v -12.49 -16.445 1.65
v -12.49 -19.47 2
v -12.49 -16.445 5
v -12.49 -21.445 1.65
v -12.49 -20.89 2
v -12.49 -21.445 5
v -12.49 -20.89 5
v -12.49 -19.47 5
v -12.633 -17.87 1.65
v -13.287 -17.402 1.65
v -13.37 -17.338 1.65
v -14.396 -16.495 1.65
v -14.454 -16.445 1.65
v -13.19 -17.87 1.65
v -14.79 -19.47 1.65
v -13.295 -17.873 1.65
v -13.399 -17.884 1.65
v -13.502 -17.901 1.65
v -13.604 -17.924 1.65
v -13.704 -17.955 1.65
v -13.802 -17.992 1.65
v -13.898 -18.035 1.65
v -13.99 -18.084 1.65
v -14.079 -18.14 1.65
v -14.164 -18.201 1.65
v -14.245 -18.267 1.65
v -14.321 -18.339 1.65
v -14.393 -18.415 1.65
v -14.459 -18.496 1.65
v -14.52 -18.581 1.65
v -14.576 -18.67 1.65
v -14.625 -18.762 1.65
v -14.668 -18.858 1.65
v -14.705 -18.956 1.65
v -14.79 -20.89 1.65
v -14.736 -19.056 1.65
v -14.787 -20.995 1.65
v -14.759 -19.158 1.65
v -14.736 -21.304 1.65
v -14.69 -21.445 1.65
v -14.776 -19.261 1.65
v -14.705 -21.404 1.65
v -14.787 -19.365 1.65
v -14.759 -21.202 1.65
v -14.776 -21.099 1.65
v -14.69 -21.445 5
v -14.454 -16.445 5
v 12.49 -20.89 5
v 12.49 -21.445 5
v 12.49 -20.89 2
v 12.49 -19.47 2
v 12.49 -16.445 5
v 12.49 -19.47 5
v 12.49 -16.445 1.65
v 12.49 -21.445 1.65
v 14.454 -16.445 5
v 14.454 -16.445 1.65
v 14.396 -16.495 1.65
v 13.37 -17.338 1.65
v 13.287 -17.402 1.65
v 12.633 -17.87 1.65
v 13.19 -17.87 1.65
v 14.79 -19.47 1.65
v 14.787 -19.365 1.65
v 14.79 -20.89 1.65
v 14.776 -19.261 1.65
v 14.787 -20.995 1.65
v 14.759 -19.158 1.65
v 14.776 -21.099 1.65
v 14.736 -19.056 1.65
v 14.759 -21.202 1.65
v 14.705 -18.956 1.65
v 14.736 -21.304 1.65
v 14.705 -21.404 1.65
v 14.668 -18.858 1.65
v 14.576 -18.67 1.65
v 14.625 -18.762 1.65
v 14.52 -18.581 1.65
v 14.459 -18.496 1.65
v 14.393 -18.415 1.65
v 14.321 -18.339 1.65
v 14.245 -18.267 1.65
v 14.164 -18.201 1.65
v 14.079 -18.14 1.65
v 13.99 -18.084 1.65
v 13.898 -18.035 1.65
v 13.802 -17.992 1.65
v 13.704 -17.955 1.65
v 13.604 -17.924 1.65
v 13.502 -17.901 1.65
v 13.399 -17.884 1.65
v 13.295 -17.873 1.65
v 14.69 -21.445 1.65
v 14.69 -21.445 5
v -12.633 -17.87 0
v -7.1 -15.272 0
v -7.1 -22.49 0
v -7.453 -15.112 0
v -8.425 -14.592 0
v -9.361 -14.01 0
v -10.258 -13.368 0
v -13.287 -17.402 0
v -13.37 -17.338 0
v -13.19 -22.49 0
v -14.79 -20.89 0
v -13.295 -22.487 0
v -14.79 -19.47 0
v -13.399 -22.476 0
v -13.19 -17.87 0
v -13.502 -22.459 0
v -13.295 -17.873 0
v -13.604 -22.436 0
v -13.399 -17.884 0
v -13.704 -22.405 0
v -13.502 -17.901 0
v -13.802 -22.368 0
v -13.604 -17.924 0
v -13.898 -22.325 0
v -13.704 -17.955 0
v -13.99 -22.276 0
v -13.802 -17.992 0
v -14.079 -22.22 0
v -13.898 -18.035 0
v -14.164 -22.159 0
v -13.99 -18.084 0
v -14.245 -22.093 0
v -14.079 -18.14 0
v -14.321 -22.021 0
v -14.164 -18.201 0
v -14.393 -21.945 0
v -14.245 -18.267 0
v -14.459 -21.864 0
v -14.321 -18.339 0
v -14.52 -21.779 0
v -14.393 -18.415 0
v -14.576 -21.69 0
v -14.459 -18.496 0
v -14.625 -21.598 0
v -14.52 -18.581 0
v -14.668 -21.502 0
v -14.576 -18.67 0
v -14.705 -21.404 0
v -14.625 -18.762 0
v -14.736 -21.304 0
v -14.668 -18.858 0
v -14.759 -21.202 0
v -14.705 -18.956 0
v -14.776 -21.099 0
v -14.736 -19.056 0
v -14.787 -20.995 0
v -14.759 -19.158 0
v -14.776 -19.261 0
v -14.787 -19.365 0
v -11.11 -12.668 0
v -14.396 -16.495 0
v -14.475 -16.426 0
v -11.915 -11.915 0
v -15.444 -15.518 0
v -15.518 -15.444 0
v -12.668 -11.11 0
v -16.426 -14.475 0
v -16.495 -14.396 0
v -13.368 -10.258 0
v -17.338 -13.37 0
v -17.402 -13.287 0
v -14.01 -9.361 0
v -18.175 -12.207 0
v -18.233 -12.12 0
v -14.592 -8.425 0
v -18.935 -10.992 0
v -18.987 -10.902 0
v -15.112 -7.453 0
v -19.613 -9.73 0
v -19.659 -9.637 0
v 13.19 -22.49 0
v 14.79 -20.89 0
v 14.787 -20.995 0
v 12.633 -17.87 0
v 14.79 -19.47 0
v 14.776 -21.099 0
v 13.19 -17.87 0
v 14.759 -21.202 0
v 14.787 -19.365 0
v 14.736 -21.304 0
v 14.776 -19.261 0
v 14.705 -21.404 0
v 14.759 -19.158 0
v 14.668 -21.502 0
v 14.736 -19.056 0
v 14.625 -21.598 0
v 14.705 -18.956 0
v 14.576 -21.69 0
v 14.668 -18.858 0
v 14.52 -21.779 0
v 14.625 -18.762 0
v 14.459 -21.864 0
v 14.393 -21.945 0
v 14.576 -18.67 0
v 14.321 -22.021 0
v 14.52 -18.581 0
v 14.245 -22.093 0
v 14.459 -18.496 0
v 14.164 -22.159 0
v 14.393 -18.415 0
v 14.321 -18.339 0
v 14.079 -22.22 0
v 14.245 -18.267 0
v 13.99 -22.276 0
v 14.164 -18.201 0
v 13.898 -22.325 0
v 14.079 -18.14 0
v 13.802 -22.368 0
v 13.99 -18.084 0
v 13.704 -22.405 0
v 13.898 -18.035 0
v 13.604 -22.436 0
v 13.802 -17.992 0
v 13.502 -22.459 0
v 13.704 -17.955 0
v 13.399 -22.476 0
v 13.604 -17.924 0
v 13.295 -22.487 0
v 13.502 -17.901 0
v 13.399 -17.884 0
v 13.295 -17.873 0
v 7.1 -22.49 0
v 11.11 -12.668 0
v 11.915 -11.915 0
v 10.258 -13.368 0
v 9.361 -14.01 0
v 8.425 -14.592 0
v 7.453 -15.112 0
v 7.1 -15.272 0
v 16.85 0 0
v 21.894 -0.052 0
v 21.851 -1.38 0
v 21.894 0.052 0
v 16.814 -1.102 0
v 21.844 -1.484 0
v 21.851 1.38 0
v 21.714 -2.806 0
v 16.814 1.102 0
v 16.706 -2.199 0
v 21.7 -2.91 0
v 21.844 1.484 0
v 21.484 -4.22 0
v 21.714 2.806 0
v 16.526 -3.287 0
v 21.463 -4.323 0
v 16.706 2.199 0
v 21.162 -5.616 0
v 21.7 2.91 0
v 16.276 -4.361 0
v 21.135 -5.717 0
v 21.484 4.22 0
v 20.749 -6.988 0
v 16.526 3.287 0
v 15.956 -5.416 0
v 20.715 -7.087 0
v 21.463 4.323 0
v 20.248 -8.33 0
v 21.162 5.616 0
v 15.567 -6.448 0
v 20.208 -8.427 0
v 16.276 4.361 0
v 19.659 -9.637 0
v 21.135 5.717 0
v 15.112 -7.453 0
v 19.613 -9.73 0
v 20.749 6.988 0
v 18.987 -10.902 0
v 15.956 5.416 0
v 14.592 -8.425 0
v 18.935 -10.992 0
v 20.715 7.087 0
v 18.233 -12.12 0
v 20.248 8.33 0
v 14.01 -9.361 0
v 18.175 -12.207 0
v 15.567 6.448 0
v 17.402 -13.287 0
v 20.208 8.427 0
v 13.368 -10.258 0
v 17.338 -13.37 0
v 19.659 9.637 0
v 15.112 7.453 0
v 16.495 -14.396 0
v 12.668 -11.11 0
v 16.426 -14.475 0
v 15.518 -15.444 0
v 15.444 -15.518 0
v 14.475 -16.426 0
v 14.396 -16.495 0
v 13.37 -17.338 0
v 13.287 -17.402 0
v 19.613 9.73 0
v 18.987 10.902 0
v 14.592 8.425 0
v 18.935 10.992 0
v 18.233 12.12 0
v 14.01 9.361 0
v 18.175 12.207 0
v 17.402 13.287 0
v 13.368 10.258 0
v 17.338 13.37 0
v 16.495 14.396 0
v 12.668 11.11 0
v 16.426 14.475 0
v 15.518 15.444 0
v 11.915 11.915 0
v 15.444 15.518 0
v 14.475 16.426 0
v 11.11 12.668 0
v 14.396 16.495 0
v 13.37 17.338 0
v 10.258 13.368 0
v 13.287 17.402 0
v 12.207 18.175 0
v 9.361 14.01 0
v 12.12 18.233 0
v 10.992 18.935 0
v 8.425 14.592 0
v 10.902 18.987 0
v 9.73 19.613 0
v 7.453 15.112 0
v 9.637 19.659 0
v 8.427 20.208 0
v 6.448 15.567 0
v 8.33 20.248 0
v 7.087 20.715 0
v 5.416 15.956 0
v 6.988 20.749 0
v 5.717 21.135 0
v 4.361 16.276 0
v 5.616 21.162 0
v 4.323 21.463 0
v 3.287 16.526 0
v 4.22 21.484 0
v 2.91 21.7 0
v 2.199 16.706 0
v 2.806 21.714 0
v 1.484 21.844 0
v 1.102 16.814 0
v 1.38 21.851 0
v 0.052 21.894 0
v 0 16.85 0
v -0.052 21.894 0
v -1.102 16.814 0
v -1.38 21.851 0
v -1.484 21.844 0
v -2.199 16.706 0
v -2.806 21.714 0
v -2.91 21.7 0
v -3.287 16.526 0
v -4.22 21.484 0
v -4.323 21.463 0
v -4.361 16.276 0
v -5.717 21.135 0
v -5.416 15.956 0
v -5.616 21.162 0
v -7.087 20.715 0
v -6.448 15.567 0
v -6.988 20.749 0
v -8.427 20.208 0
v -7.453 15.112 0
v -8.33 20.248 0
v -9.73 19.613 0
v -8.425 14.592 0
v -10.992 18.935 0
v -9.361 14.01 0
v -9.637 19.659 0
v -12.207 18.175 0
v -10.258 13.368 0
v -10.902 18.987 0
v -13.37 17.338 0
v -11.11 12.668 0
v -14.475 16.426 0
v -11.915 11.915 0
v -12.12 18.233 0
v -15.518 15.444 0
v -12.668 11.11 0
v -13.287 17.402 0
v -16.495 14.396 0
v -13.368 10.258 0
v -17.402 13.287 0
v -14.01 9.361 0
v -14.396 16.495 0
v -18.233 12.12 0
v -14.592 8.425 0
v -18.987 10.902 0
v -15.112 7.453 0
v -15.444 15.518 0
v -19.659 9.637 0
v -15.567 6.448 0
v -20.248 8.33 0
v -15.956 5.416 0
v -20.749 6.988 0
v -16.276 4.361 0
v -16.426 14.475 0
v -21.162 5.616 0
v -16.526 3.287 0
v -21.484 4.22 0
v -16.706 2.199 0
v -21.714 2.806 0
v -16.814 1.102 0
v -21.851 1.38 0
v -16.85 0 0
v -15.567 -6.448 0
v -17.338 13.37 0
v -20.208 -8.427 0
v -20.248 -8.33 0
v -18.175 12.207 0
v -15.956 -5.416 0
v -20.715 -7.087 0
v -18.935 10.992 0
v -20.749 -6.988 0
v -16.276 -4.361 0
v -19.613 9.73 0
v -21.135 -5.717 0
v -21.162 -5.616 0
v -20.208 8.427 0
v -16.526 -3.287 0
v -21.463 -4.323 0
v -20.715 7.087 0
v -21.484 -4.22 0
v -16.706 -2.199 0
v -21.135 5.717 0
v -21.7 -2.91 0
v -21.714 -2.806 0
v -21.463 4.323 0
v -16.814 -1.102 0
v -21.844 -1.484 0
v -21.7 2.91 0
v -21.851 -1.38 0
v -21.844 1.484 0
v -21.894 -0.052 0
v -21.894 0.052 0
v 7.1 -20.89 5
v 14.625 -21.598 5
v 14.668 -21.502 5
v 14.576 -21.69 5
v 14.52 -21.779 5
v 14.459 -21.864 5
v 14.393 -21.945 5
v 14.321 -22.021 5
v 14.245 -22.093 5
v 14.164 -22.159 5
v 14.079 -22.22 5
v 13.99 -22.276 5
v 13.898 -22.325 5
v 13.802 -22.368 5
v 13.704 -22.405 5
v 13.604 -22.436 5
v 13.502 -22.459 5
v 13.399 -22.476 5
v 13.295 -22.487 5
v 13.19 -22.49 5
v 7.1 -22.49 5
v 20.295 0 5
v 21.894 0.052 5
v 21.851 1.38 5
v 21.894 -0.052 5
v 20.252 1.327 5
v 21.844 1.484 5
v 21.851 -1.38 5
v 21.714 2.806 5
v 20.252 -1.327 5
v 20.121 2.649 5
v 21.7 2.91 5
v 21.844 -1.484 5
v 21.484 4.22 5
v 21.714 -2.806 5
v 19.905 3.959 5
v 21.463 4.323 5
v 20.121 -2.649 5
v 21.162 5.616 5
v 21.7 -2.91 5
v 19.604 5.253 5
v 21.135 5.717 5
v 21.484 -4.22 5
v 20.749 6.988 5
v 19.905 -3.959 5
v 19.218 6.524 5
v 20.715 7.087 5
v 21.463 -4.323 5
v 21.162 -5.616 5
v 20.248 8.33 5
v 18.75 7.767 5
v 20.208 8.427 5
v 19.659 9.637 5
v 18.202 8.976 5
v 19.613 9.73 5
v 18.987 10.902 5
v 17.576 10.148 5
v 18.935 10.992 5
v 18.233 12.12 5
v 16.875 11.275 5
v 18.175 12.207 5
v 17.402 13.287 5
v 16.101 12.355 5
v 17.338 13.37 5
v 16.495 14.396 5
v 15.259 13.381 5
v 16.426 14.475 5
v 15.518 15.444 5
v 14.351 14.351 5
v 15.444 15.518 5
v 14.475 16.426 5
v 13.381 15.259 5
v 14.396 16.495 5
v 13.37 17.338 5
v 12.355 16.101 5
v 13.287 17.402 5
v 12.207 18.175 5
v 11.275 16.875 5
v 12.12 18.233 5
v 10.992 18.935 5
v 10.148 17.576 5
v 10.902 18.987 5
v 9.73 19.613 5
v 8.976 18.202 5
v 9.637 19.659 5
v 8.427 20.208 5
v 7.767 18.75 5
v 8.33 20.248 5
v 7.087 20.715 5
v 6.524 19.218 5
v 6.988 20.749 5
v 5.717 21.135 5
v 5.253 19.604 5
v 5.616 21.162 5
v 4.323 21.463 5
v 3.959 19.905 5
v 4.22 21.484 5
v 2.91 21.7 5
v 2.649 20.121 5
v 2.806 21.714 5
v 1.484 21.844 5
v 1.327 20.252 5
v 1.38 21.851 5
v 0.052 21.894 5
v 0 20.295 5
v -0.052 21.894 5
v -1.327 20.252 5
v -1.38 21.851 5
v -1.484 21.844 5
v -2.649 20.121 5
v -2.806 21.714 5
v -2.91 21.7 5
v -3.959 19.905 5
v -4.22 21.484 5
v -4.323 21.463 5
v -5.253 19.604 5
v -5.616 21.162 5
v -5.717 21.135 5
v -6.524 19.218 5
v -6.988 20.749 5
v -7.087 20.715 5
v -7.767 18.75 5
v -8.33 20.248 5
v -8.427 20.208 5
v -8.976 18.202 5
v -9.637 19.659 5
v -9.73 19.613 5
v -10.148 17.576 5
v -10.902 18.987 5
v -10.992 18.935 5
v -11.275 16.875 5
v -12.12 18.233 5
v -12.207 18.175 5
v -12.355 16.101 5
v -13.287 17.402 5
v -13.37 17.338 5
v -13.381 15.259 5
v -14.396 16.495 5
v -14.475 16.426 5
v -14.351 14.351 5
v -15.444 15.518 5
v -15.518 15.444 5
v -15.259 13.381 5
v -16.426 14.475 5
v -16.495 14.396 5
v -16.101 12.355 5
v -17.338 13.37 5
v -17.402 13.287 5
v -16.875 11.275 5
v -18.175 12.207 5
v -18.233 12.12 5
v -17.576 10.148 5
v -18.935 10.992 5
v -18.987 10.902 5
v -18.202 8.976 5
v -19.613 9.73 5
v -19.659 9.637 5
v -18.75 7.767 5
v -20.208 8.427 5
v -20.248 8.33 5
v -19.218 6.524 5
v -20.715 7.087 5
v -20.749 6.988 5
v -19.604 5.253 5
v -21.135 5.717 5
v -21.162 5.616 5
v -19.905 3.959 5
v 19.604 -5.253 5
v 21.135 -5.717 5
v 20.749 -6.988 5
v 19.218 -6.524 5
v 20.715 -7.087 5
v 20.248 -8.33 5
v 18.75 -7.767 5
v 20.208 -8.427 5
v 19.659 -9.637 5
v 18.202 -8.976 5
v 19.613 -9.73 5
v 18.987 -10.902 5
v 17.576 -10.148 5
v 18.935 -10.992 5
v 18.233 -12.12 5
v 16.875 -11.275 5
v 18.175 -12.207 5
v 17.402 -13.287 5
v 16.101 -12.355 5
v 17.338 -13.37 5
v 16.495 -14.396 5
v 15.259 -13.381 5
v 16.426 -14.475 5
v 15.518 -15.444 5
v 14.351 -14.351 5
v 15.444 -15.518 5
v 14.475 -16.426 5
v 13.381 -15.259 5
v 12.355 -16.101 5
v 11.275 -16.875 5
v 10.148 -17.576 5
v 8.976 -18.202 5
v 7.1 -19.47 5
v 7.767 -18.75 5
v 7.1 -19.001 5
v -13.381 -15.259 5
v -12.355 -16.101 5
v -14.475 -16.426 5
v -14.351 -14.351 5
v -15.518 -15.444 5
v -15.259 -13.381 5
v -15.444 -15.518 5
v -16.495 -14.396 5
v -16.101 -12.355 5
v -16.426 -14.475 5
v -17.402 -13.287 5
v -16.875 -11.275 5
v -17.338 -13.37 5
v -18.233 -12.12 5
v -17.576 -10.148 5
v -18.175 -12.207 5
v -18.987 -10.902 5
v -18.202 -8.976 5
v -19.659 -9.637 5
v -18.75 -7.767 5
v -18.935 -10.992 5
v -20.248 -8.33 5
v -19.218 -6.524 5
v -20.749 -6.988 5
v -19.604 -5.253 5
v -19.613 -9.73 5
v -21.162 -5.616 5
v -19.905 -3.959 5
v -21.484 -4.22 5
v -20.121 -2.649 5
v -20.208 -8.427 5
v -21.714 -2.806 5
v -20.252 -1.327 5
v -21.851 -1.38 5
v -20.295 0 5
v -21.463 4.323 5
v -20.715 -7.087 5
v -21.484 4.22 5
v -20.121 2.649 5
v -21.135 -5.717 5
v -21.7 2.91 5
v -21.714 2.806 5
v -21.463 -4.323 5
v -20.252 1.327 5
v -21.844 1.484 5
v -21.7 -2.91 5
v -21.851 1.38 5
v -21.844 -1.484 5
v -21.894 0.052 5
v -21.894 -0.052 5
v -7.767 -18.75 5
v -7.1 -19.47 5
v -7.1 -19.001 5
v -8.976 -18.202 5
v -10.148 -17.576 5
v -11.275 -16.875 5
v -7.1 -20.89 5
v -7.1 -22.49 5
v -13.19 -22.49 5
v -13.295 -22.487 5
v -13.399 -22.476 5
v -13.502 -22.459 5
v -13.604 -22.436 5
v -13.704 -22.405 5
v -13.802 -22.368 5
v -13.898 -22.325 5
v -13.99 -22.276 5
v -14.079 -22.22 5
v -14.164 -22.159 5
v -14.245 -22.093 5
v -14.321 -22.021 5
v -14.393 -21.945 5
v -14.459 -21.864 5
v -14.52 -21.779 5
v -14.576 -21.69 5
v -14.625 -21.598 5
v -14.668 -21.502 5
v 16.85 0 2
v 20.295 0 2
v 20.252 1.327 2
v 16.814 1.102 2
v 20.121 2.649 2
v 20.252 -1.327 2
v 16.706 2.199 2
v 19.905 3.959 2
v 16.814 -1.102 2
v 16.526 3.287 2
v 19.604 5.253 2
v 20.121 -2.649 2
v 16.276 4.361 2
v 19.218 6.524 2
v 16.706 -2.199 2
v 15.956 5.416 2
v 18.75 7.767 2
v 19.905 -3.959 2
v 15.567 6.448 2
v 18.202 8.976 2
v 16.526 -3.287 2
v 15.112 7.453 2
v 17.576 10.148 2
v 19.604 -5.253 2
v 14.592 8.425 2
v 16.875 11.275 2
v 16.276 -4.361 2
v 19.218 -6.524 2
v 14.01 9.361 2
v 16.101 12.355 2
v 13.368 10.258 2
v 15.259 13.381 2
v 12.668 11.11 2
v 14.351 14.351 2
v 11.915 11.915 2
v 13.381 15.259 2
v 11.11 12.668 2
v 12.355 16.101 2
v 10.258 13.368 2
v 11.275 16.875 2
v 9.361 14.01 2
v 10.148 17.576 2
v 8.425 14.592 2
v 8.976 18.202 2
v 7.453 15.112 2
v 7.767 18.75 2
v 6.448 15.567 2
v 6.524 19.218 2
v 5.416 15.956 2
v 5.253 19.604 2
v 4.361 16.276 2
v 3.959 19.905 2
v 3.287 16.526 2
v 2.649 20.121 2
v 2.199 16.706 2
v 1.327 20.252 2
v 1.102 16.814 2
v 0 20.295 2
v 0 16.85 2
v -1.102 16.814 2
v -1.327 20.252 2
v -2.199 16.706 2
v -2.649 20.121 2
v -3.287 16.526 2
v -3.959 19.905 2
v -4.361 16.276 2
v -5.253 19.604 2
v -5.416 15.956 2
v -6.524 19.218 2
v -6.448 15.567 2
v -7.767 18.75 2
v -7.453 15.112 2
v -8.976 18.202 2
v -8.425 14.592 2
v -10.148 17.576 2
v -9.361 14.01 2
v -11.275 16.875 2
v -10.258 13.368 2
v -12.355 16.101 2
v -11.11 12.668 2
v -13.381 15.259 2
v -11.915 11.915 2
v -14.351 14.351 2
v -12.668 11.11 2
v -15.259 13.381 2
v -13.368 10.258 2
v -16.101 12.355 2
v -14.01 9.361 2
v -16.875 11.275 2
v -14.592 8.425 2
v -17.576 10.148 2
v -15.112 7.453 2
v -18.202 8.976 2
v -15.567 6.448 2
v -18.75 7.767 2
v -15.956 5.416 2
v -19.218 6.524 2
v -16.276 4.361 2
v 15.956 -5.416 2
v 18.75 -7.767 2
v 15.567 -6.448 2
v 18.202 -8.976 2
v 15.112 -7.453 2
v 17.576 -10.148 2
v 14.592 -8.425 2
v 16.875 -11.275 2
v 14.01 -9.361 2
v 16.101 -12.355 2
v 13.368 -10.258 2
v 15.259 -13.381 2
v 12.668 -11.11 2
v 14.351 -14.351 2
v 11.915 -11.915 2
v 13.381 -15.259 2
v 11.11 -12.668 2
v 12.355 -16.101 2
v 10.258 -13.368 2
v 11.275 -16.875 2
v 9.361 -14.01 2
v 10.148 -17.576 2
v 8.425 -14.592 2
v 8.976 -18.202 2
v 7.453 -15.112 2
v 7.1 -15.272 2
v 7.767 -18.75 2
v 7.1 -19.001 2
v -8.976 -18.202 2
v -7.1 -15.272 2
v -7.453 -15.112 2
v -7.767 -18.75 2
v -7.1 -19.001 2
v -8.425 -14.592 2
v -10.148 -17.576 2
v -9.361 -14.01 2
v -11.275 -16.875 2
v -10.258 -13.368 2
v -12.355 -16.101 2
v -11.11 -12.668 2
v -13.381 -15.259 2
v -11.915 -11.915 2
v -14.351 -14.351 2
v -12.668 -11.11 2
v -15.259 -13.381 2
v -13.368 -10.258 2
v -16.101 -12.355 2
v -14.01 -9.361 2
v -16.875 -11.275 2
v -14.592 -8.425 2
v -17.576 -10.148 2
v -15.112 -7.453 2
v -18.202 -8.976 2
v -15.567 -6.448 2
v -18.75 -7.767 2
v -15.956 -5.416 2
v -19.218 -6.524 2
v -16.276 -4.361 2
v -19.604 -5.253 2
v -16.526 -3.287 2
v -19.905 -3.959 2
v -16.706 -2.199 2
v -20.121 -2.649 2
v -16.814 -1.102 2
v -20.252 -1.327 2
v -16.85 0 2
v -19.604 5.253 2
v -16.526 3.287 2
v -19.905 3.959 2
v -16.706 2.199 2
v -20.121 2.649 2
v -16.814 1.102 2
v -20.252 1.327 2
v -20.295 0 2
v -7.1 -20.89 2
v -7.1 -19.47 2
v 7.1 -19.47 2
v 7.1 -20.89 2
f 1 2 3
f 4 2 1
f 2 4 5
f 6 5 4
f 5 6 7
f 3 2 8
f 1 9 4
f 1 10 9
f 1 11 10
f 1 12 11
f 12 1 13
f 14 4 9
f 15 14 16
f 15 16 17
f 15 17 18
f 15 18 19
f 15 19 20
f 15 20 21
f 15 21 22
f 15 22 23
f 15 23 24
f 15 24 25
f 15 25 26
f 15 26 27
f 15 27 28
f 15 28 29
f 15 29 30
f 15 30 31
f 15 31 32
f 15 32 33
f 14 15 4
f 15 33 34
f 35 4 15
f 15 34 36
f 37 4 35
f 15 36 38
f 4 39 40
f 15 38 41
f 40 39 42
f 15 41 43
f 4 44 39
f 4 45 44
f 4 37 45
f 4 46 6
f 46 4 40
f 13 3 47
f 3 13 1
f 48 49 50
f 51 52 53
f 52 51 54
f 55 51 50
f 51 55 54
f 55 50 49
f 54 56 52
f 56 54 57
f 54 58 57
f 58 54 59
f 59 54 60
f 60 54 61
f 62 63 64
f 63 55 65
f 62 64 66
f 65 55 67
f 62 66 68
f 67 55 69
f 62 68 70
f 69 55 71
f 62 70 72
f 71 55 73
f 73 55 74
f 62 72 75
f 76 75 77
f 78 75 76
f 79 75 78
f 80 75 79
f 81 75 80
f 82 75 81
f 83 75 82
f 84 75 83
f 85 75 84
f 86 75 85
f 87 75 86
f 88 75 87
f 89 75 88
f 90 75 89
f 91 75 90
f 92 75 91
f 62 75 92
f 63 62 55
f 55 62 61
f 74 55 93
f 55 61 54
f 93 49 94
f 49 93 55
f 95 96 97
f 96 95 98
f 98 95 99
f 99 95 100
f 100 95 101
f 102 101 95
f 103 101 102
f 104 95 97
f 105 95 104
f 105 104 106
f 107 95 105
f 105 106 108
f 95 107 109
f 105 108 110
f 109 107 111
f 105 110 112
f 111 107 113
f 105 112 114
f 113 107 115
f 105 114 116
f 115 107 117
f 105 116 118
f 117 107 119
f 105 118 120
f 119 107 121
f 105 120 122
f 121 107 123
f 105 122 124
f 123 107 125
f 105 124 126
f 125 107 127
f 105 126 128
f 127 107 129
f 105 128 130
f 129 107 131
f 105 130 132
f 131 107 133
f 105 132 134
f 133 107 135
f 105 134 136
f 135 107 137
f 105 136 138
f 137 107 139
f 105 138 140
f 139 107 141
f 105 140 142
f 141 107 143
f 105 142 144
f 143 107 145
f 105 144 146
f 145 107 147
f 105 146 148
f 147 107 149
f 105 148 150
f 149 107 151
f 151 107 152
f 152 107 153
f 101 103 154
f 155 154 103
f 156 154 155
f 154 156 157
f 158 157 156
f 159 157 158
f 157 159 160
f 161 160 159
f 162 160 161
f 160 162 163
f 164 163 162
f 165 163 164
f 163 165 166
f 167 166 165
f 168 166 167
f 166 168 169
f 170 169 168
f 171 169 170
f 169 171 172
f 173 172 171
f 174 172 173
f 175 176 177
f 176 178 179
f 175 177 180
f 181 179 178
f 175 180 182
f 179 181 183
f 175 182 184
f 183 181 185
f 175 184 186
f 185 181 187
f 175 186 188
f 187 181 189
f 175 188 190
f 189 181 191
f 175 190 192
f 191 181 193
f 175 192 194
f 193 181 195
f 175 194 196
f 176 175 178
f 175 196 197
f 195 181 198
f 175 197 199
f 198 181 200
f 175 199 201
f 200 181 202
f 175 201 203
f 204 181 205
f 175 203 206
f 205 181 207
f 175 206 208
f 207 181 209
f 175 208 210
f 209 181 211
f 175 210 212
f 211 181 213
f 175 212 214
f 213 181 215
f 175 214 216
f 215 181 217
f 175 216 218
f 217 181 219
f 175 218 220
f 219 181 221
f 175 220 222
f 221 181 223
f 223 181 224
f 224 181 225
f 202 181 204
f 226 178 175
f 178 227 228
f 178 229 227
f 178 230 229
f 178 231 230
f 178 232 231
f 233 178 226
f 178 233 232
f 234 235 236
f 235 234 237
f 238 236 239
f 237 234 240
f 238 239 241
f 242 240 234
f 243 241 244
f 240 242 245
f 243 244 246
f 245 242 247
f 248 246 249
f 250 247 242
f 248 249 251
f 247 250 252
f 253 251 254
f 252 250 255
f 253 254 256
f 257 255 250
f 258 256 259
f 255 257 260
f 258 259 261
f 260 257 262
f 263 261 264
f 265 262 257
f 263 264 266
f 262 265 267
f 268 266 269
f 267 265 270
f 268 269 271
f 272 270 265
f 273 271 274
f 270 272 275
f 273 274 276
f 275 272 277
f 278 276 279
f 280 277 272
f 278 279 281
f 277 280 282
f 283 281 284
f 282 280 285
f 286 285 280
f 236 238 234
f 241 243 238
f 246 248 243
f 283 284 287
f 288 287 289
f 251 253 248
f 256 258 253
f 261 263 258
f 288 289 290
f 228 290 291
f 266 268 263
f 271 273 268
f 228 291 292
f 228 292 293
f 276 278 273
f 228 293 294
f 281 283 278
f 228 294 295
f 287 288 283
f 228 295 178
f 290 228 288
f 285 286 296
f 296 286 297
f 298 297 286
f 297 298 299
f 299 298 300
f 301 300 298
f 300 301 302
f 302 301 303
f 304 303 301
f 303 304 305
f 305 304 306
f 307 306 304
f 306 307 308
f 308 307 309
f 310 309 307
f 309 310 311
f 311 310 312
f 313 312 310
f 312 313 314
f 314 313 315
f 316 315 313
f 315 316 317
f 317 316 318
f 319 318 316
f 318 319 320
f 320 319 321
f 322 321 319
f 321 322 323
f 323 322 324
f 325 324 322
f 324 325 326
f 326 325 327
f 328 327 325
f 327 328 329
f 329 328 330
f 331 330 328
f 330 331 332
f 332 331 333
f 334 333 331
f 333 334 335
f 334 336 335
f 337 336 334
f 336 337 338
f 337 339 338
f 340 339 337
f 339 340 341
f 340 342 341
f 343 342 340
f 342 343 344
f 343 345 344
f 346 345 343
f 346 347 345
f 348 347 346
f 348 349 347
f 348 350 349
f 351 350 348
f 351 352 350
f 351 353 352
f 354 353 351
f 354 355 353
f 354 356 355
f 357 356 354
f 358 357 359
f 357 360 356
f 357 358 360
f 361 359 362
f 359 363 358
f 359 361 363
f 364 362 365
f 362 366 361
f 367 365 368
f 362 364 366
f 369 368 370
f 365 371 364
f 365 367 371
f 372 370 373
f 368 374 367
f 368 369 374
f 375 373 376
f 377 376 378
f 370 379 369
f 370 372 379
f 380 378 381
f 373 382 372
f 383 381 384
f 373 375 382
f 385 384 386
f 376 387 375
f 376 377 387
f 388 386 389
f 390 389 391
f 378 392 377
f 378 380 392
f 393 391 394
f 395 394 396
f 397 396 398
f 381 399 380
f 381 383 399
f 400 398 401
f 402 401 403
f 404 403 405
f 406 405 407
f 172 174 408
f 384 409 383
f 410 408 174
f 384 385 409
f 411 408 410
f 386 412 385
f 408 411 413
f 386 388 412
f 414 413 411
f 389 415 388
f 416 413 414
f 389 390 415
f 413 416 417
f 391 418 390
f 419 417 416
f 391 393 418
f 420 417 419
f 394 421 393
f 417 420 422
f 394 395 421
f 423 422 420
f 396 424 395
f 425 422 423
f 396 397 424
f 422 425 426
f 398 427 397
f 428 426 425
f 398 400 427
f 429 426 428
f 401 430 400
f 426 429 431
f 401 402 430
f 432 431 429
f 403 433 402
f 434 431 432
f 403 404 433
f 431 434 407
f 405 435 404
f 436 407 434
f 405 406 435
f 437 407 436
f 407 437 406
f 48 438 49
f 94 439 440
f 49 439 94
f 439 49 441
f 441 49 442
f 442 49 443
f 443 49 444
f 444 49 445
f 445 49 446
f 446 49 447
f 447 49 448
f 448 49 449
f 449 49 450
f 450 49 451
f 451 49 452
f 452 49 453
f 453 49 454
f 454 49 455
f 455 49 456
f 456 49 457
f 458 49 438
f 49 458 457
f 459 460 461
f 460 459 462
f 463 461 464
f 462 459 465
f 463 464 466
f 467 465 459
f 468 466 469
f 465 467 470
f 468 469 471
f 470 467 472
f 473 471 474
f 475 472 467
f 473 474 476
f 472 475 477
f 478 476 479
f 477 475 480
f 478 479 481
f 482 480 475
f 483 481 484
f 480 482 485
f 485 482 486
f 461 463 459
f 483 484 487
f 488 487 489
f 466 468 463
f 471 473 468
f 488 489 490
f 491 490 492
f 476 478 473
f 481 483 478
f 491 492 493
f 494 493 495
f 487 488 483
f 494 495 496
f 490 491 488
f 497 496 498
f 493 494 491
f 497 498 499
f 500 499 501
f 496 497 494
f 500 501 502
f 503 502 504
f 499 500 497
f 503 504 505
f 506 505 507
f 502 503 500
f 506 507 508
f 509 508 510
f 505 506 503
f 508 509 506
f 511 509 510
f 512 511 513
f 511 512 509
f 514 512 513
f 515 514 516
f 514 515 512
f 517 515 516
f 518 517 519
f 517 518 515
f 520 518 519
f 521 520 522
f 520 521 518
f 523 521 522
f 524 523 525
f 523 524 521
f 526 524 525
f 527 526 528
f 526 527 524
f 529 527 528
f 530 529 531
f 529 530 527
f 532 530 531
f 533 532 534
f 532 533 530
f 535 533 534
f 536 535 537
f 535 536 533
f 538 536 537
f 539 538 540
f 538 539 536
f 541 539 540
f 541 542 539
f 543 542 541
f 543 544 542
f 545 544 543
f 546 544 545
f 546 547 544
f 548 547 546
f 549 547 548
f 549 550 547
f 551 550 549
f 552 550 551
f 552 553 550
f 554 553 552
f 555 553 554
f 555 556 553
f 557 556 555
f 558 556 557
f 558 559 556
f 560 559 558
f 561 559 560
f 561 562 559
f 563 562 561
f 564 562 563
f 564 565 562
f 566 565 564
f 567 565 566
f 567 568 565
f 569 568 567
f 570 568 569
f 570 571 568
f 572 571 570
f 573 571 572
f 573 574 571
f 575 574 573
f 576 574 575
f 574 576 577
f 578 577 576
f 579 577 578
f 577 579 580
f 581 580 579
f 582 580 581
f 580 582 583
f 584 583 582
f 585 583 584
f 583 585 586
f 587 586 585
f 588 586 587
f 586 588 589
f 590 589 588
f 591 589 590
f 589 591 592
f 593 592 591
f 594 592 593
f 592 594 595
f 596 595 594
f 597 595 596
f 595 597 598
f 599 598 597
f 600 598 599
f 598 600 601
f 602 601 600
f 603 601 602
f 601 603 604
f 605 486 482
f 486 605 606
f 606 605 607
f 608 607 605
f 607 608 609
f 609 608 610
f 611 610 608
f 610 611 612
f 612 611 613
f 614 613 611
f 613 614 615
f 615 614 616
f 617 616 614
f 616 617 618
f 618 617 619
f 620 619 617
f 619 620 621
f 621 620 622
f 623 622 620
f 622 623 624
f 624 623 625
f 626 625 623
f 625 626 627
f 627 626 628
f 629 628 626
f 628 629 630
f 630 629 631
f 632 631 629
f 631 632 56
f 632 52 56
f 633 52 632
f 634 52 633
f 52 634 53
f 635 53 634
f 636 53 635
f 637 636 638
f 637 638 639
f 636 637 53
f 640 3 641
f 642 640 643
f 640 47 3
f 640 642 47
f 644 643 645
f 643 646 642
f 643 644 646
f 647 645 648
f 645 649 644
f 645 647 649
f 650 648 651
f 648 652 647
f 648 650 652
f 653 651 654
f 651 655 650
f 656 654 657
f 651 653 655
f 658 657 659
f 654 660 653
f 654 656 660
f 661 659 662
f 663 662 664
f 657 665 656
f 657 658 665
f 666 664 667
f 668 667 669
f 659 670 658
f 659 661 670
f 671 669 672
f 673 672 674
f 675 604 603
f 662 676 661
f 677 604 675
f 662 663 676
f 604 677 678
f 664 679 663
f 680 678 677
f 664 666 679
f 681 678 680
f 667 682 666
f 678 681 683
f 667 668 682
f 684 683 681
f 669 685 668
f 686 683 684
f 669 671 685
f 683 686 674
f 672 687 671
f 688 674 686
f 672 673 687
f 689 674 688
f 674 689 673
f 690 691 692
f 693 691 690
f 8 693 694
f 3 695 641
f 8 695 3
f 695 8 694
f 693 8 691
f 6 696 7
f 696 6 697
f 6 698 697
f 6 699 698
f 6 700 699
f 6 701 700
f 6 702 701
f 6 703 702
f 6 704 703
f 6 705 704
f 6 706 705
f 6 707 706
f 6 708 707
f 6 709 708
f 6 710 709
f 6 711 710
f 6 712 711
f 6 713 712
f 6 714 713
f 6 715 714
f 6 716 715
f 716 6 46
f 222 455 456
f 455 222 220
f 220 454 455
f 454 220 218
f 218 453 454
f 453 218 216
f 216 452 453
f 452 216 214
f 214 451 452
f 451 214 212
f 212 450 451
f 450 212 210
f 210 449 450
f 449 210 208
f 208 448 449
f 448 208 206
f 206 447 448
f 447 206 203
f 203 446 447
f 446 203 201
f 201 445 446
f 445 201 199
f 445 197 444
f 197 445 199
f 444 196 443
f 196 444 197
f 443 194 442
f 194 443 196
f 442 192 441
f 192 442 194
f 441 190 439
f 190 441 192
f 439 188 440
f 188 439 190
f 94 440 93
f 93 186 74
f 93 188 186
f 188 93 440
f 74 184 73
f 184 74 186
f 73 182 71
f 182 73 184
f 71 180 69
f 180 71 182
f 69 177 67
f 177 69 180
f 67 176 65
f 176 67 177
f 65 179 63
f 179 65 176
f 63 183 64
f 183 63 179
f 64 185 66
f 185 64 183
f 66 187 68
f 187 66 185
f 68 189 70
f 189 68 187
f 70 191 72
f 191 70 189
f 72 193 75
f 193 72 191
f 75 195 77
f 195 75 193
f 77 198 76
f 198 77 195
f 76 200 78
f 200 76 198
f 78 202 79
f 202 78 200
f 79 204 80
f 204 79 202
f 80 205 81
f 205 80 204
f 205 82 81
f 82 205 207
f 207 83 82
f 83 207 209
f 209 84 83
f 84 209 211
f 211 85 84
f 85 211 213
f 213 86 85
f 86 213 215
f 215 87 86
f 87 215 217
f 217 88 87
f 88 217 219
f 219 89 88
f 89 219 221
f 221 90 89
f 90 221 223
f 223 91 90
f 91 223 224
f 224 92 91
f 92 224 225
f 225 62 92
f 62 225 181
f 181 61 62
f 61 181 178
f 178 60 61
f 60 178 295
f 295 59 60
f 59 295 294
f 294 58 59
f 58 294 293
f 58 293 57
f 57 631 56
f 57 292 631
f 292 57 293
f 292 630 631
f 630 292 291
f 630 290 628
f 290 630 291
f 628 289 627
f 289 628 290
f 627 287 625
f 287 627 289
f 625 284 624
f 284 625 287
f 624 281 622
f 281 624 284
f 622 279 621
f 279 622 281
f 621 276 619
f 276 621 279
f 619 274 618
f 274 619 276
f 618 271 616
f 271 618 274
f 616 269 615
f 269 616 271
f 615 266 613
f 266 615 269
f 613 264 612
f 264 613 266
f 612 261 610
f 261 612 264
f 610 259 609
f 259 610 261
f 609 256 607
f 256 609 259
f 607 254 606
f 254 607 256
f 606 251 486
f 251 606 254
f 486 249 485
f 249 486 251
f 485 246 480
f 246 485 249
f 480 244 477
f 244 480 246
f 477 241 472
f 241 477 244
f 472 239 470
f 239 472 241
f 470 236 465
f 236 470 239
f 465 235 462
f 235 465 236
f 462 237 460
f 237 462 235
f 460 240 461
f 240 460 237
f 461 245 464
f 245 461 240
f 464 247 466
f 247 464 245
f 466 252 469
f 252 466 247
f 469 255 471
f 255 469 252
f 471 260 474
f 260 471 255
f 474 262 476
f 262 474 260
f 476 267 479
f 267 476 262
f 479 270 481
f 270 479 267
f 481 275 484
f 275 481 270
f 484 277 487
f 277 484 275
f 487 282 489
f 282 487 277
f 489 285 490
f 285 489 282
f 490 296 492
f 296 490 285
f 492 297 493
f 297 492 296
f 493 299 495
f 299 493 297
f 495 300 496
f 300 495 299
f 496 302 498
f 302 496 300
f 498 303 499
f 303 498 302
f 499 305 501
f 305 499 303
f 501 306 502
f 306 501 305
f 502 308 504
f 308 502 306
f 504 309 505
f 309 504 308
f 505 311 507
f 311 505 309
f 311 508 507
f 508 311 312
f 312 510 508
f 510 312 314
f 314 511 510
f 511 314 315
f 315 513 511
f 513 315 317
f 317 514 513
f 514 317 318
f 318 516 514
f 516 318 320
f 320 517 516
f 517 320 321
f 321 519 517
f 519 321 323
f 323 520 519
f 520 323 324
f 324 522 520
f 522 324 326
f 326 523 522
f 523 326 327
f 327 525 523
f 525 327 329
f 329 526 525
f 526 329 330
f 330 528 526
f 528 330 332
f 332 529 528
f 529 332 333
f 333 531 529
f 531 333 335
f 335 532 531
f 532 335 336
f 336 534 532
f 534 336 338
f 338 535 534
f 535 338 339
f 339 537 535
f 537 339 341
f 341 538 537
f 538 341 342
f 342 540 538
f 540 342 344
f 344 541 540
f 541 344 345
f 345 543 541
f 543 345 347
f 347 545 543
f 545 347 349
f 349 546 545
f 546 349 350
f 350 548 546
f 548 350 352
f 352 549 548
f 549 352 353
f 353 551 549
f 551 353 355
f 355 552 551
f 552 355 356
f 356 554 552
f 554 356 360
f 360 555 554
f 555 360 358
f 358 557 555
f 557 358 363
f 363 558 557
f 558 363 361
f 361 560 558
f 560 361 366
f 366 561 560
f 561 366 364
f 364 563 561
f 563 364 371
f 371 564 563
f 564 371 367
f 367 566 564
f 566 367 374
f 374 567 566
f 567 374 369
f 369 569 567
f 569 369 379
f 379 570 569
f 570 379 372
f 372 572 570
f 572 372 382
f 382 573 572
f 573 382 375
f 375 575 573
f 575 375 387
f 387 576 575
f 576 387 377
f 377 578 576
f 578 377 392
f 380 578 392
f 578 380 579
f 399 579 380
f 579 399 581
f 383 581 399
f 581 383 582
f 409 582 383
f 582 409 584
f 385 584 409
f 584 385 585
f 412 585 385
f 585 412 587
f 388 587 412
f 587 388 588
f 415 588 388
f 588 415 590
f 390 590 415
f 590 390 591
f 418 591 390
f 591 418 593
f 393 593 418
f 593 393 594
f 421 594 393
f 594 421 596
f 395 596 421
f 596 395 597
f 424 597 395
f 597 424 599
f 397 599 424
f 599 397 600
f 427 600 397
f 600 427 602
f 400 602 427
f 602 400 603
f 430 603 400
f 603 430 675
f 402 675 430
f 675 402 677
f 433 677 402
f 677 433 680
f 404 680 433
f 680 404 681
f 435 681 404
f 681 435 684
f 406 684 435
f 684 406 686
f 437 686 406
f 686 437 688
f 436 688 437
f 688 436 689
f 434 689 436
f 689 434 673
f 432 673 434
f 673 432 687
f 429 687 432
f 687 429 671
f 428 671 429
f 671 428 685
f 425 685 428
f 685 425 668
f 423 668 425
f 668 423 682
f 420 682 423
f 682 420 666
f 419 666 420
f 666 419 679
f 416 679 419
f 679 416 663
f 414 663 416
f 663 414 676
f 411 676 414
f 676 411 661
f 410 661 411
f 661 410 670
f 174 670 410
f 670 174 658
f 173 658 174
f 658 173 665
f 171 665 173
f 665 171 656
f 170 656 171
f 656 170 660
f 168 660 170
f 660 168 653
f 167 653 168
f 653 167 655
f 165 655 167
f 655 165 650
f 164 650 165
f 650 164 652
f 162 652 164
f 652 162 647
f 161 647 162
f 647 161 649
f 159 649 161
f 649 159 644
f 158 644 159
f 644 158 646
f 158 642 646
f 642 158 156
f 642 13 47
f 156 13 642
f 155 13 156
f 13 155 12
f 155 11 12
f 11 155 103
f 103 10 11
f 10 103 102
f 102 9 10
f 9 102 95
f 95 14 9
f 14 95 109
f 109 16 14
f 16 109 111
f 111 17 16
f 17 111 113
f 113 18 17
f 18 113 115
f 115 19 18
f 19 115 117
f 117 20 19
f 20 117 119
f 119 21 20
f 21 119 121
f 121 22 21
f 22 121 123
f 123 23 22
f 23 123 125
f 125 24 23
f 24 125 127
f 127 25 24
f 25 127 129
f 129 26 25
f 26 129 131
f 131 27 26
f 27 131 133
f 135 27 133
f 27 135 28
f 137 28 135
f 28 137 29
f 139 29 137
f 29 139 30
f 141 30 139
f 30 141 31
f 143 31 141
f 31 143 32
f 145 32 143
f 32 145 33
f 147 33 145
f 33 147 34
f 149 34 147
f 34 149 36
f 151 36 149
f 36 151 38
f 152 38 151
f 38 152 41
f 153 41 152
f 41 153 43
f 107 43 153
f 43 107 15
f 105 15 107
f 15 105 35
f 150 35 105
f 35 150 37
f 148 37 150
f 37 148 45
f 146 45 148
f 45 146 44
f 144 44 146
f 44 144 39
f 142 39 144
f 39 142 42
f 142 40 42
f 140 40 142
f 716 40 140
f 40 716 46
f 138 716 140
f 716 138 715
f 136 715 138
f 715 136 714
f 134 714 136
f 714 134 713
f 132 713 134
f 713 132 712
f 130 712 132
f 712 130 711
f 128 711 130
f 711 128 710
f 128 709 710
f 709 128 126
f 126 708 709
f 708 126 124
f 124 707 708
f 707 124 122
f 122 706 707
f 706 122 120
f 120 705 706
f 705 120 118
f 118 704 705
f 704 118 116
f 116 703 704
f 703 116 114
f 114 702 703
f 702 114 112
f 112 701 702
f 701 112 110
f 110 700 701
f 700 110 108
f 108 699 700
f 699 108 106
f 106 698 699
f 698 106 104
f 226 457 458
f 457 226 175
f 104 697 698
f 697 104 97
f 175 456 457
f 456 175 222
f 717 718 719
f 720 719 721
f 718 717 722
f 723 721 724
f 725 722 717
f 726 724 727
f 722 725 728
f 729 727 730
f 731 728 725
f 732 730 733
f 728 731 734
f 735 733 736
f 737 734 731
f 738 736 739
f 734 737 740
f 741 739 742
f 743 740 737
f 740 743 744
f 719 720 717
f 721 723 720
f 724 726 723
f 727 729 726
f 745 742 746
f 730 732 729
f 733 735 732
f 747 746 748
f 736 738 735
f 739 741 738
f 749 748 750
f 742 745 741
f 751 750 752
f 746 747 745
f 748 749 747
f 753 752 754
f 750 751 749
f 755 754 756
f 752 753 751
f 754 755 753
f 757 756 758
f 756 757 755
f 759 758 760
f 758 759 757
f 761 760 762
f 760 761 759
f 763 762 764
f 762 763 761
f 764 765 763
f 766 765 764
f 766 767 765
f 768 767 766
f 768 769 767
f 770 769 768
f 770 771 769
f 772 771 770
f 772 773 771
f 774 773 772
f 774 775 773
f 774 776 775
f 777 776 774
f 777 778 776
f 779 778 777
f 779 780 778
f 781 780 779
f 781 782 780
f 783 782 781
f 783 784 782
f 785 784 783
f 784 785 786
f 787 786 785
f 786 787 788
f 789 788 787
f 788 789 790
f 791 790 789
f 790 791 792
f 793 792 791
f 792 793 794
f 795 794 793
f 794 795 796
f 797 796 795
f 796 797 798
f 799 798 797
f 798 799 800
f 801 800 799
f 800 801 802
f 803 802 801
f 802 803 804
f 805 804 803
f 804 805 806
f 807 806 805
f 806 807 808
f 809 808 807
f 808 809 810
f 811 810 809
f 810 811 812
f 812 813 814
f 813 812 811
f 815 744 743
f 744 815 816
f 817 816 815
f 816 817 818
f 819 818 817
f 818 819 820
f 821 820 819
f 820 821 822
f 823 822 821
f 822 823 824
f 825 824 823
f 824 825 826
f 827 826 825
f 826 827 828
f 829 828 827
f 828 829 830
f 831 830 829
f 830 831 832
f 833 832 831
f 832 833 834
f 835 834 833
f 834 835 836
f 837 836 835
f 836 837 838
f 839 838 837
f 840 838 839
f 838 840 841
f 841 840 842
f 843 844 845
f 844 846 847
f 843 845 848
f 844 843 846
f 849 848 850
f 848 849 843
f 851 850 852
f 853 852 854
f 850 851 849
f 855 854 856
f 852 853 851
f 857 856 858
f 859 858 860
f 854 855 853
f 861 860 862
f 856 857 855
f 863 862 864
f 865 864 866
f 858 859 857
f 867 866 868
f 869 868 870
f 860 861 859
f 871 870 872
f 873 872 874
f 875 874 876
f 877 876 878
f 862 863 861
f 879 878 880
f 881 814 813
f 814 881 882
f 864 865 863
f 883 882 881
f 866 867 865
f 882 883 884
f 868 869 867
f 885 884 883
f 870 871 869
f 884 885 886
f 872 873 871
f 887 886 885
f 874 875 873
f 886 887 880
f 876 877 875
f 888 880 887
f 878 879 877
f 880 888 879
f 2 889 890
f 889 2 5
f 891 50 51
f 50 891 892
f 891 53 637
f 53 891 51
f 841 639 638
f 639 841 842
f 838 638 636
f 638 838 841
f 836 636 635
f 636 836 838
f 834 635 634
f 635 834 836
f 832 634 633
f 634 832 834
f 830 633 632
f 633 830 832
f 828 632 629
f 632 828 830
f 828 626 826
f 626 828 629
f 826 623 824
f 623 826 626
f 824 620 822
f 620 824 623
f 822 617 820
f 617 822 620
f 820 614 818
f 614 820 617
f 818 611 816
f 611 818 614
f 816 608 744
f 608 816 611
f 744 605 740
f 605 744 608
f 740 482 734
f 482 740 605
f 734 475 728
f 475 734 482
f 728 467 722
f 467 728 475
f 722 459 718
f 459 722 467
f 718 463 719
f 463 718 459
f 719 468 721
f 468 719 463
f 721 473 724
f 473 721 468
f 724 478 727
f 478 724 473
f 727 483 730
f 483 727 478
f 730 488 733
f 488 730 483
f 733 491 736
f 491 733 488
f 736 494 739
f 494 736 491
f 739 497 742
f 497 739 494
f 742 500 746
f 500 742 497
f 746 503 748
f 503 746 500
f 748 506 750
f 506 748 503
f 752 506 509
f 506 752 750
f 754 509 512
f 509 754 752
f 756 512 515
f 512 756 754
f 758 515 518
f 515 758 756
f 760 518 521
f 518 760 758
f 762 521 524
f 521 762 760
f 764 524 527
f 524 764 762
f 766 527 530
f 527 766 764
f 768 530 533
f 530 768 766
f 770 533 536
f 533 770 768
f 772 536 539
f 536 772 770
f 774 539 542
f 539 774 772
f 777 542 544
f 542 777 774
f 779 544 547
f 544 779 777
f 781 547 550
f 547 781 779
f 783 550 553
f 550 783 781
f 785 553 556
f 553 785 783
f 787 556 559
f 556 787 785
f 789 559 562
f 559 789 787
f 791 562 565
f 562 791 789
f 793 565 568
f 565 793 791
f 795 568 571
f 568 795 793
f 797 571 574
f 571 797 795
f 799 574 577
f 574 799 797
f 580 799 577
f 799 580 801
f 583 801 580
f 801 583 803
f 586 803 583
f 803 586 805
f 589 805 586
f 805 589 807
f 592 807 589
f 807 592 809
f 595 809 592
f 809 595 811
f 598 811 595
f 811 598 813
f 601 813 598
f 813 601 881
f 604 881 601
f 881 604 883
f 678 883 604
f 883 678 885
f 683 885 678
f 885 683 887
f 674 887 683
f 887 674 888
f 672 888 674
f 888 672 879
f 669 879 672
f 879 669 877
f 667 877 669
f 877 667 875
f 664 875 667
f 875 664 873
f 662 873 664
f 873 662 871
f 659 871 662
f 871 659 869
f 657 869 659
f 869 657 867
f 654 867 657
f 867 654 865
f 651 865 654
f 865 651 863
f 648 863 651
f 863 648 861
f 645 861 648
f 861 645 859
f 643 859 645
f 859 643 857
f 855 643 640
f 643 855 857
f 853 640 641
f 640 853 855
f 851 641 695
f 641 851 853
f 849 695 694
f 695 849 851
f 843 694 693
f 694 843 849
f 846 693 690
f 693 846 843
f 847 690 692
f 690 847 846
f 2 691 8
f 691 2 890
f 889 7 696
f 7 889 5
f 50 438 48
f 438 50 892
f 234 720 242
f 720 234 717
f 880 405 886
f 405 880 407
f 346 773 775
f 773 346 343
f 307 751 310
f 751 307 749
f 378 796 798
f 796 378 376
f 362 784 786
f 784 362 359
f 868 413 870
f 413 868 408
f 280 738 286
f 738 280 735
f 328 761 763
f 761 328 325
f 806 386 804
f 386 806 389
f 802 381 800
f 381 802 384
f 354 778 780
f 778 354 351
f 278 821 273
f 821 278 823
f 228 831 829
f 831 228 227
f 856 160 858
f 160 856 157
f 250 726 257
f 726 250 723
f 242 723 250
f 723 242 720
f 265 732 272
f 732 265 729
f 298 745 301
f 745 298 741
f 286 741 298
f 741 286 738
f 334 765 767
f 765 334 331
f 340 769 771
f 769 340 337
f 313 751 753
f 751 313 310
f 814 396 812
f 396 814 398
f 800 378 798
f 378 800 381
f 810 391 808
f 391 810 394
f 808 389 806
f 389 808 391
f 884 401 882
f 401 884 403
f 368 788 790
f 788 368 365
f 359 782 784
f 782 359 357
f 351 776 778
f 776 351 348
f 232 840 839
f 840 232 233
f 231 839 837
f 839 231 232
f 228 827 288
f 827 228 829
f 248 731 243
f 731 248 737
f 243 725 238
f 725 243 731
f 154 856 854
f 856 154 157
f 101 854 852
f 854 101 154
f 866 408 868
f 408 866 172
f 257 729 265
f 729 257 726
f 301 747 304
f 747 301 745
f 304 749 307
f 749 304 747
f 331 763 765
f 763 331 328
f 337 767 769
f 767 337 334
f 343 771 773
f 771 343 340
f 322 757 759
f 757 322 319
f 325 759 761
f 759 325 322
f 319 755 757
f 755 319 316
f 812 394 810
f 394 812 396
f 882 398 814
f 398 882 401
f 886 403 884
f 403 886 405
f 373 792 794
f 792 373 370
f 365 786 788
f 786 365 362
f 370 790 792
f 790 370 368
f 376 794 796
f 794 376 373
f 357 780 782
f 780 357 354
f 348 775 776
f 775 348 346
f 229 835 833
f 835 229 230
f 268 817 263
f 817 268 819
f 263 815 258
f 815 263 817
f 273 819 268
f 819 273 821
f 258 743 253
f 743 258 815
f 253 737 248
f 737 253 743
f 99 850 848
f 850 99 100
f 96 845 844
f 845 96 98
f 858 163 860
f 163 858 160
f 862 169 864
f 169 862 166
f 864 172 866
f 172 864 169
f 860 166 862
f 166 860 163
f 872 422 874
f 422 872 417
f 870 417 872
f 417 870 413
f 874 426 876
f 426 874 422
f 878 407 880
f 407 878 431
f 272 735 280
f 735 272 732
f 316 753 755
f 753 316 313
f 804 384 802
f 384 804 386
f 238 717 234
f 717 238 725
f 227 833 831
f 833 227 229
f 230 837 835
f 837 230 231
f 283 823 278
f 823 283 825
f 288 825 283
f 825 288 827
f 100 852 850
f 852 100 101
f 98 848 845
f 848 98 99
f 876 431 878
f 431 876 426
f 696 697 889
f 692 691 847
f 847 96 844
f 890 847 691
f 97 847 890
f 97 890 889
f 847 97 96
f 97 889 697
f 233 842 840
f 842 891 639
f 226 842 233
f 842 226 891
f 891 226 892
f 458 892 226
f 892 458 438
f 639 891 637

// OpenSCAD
// Minimal front face for Waveshare ESP32-S3 Touch LCD 1.28
// Goal: smallest possible outer size that still seats the board.
// Units: mm
//
// Export examples:
//   openscad -o hud_face_min.stl hud_face_min.scad

$fn = 96;

// ----- Board dimensions (from provided drawing) -----
board_d = 39.49;        // main circular board diameter
board_total_h = 40.36;  // overall height including lower tail
board_tail_w = 25.28;   // lower width
usb_w = 13.0;           // USB-C slot width (connector + shell tolerance)
usb_h = 5.5;            // USB-C slot height

// ----- Fit / print parameters -----
clearance = 0.55;       // board pocket — extra room near USB tail / corners
wall = 1.6;             // thin wall for compact form
front_t = 2.0;          // front plate thickness
seat_depth = 3.0;       // back pocket depth
bezel = 1.1;            // visible ring around LCD opening

// Active area from drawing: 33.40
lcd_open_d = 33.40 + 0.3; // tiny margin to avoid clipping

// Derived
board_r = board_d / 2;
tail_drop = board_total_h - board_d; // extra height below circle

module board_profile_2d(extra = 0) {
    // Approximate Waveshare "round + short tail" board shape.
    // Keep shape simple and robust for OpenSCAD.
    union() {
        circle(d = board_d + extra * 2);
        translate([0, -(board_r + tail_drop / 2)])
            square([board_tail_w + extra * 2, tail_drop + extra], center = true);
    }
}

module outer_profile_2d() {
    offset(r = wall)
        board_profile_2d(extra = clearance);
}

module face_shell() {
    // Bottom of tail (USB end): center of cut sits slightly outward so plastic lip clears connector
    usb_y = -(board_r + tail_drop) + 1.4;
    usb_cut_depth_y = 9.0;

    difference() {
        // Main front face
        linear_extrude(height = front_t + seat_depth)
            outer_profile_2d();

        // Back pocket where board sits
        translate([0, 0, front_t])
            linear_extrude(height = seat_depth + 0.2)
                board_profile_2d(extra = clearance);

        // Front LCD window
        translate([0, 0, -0.1])
            cylinder(h = front_t + 0.3, d = lcd_open_d);

        // USB-C: cut through full shell depth so board can seat flat (no lip riding on port)
        translate([0, usb_y, (front_t + seat_depth) / 2 - 0.15])
            cube([usb_w + 1.2, usb_cut_depth_y, front_t + seat_depth + 0.6], center = true);

        // Inner corner relief where round body meets tail (both sides of USB)
        for (sx = [-1, 1]) {
            translate([sx * (board_tail_w / 2 + clearance + 0.9), -board_r + 0.8, front_t + seat_depth / 2 - 0.1])
                cube([3.2, 5.0, seat_depth + 0.5], center = true);
        }
    }
}

face_shell();
